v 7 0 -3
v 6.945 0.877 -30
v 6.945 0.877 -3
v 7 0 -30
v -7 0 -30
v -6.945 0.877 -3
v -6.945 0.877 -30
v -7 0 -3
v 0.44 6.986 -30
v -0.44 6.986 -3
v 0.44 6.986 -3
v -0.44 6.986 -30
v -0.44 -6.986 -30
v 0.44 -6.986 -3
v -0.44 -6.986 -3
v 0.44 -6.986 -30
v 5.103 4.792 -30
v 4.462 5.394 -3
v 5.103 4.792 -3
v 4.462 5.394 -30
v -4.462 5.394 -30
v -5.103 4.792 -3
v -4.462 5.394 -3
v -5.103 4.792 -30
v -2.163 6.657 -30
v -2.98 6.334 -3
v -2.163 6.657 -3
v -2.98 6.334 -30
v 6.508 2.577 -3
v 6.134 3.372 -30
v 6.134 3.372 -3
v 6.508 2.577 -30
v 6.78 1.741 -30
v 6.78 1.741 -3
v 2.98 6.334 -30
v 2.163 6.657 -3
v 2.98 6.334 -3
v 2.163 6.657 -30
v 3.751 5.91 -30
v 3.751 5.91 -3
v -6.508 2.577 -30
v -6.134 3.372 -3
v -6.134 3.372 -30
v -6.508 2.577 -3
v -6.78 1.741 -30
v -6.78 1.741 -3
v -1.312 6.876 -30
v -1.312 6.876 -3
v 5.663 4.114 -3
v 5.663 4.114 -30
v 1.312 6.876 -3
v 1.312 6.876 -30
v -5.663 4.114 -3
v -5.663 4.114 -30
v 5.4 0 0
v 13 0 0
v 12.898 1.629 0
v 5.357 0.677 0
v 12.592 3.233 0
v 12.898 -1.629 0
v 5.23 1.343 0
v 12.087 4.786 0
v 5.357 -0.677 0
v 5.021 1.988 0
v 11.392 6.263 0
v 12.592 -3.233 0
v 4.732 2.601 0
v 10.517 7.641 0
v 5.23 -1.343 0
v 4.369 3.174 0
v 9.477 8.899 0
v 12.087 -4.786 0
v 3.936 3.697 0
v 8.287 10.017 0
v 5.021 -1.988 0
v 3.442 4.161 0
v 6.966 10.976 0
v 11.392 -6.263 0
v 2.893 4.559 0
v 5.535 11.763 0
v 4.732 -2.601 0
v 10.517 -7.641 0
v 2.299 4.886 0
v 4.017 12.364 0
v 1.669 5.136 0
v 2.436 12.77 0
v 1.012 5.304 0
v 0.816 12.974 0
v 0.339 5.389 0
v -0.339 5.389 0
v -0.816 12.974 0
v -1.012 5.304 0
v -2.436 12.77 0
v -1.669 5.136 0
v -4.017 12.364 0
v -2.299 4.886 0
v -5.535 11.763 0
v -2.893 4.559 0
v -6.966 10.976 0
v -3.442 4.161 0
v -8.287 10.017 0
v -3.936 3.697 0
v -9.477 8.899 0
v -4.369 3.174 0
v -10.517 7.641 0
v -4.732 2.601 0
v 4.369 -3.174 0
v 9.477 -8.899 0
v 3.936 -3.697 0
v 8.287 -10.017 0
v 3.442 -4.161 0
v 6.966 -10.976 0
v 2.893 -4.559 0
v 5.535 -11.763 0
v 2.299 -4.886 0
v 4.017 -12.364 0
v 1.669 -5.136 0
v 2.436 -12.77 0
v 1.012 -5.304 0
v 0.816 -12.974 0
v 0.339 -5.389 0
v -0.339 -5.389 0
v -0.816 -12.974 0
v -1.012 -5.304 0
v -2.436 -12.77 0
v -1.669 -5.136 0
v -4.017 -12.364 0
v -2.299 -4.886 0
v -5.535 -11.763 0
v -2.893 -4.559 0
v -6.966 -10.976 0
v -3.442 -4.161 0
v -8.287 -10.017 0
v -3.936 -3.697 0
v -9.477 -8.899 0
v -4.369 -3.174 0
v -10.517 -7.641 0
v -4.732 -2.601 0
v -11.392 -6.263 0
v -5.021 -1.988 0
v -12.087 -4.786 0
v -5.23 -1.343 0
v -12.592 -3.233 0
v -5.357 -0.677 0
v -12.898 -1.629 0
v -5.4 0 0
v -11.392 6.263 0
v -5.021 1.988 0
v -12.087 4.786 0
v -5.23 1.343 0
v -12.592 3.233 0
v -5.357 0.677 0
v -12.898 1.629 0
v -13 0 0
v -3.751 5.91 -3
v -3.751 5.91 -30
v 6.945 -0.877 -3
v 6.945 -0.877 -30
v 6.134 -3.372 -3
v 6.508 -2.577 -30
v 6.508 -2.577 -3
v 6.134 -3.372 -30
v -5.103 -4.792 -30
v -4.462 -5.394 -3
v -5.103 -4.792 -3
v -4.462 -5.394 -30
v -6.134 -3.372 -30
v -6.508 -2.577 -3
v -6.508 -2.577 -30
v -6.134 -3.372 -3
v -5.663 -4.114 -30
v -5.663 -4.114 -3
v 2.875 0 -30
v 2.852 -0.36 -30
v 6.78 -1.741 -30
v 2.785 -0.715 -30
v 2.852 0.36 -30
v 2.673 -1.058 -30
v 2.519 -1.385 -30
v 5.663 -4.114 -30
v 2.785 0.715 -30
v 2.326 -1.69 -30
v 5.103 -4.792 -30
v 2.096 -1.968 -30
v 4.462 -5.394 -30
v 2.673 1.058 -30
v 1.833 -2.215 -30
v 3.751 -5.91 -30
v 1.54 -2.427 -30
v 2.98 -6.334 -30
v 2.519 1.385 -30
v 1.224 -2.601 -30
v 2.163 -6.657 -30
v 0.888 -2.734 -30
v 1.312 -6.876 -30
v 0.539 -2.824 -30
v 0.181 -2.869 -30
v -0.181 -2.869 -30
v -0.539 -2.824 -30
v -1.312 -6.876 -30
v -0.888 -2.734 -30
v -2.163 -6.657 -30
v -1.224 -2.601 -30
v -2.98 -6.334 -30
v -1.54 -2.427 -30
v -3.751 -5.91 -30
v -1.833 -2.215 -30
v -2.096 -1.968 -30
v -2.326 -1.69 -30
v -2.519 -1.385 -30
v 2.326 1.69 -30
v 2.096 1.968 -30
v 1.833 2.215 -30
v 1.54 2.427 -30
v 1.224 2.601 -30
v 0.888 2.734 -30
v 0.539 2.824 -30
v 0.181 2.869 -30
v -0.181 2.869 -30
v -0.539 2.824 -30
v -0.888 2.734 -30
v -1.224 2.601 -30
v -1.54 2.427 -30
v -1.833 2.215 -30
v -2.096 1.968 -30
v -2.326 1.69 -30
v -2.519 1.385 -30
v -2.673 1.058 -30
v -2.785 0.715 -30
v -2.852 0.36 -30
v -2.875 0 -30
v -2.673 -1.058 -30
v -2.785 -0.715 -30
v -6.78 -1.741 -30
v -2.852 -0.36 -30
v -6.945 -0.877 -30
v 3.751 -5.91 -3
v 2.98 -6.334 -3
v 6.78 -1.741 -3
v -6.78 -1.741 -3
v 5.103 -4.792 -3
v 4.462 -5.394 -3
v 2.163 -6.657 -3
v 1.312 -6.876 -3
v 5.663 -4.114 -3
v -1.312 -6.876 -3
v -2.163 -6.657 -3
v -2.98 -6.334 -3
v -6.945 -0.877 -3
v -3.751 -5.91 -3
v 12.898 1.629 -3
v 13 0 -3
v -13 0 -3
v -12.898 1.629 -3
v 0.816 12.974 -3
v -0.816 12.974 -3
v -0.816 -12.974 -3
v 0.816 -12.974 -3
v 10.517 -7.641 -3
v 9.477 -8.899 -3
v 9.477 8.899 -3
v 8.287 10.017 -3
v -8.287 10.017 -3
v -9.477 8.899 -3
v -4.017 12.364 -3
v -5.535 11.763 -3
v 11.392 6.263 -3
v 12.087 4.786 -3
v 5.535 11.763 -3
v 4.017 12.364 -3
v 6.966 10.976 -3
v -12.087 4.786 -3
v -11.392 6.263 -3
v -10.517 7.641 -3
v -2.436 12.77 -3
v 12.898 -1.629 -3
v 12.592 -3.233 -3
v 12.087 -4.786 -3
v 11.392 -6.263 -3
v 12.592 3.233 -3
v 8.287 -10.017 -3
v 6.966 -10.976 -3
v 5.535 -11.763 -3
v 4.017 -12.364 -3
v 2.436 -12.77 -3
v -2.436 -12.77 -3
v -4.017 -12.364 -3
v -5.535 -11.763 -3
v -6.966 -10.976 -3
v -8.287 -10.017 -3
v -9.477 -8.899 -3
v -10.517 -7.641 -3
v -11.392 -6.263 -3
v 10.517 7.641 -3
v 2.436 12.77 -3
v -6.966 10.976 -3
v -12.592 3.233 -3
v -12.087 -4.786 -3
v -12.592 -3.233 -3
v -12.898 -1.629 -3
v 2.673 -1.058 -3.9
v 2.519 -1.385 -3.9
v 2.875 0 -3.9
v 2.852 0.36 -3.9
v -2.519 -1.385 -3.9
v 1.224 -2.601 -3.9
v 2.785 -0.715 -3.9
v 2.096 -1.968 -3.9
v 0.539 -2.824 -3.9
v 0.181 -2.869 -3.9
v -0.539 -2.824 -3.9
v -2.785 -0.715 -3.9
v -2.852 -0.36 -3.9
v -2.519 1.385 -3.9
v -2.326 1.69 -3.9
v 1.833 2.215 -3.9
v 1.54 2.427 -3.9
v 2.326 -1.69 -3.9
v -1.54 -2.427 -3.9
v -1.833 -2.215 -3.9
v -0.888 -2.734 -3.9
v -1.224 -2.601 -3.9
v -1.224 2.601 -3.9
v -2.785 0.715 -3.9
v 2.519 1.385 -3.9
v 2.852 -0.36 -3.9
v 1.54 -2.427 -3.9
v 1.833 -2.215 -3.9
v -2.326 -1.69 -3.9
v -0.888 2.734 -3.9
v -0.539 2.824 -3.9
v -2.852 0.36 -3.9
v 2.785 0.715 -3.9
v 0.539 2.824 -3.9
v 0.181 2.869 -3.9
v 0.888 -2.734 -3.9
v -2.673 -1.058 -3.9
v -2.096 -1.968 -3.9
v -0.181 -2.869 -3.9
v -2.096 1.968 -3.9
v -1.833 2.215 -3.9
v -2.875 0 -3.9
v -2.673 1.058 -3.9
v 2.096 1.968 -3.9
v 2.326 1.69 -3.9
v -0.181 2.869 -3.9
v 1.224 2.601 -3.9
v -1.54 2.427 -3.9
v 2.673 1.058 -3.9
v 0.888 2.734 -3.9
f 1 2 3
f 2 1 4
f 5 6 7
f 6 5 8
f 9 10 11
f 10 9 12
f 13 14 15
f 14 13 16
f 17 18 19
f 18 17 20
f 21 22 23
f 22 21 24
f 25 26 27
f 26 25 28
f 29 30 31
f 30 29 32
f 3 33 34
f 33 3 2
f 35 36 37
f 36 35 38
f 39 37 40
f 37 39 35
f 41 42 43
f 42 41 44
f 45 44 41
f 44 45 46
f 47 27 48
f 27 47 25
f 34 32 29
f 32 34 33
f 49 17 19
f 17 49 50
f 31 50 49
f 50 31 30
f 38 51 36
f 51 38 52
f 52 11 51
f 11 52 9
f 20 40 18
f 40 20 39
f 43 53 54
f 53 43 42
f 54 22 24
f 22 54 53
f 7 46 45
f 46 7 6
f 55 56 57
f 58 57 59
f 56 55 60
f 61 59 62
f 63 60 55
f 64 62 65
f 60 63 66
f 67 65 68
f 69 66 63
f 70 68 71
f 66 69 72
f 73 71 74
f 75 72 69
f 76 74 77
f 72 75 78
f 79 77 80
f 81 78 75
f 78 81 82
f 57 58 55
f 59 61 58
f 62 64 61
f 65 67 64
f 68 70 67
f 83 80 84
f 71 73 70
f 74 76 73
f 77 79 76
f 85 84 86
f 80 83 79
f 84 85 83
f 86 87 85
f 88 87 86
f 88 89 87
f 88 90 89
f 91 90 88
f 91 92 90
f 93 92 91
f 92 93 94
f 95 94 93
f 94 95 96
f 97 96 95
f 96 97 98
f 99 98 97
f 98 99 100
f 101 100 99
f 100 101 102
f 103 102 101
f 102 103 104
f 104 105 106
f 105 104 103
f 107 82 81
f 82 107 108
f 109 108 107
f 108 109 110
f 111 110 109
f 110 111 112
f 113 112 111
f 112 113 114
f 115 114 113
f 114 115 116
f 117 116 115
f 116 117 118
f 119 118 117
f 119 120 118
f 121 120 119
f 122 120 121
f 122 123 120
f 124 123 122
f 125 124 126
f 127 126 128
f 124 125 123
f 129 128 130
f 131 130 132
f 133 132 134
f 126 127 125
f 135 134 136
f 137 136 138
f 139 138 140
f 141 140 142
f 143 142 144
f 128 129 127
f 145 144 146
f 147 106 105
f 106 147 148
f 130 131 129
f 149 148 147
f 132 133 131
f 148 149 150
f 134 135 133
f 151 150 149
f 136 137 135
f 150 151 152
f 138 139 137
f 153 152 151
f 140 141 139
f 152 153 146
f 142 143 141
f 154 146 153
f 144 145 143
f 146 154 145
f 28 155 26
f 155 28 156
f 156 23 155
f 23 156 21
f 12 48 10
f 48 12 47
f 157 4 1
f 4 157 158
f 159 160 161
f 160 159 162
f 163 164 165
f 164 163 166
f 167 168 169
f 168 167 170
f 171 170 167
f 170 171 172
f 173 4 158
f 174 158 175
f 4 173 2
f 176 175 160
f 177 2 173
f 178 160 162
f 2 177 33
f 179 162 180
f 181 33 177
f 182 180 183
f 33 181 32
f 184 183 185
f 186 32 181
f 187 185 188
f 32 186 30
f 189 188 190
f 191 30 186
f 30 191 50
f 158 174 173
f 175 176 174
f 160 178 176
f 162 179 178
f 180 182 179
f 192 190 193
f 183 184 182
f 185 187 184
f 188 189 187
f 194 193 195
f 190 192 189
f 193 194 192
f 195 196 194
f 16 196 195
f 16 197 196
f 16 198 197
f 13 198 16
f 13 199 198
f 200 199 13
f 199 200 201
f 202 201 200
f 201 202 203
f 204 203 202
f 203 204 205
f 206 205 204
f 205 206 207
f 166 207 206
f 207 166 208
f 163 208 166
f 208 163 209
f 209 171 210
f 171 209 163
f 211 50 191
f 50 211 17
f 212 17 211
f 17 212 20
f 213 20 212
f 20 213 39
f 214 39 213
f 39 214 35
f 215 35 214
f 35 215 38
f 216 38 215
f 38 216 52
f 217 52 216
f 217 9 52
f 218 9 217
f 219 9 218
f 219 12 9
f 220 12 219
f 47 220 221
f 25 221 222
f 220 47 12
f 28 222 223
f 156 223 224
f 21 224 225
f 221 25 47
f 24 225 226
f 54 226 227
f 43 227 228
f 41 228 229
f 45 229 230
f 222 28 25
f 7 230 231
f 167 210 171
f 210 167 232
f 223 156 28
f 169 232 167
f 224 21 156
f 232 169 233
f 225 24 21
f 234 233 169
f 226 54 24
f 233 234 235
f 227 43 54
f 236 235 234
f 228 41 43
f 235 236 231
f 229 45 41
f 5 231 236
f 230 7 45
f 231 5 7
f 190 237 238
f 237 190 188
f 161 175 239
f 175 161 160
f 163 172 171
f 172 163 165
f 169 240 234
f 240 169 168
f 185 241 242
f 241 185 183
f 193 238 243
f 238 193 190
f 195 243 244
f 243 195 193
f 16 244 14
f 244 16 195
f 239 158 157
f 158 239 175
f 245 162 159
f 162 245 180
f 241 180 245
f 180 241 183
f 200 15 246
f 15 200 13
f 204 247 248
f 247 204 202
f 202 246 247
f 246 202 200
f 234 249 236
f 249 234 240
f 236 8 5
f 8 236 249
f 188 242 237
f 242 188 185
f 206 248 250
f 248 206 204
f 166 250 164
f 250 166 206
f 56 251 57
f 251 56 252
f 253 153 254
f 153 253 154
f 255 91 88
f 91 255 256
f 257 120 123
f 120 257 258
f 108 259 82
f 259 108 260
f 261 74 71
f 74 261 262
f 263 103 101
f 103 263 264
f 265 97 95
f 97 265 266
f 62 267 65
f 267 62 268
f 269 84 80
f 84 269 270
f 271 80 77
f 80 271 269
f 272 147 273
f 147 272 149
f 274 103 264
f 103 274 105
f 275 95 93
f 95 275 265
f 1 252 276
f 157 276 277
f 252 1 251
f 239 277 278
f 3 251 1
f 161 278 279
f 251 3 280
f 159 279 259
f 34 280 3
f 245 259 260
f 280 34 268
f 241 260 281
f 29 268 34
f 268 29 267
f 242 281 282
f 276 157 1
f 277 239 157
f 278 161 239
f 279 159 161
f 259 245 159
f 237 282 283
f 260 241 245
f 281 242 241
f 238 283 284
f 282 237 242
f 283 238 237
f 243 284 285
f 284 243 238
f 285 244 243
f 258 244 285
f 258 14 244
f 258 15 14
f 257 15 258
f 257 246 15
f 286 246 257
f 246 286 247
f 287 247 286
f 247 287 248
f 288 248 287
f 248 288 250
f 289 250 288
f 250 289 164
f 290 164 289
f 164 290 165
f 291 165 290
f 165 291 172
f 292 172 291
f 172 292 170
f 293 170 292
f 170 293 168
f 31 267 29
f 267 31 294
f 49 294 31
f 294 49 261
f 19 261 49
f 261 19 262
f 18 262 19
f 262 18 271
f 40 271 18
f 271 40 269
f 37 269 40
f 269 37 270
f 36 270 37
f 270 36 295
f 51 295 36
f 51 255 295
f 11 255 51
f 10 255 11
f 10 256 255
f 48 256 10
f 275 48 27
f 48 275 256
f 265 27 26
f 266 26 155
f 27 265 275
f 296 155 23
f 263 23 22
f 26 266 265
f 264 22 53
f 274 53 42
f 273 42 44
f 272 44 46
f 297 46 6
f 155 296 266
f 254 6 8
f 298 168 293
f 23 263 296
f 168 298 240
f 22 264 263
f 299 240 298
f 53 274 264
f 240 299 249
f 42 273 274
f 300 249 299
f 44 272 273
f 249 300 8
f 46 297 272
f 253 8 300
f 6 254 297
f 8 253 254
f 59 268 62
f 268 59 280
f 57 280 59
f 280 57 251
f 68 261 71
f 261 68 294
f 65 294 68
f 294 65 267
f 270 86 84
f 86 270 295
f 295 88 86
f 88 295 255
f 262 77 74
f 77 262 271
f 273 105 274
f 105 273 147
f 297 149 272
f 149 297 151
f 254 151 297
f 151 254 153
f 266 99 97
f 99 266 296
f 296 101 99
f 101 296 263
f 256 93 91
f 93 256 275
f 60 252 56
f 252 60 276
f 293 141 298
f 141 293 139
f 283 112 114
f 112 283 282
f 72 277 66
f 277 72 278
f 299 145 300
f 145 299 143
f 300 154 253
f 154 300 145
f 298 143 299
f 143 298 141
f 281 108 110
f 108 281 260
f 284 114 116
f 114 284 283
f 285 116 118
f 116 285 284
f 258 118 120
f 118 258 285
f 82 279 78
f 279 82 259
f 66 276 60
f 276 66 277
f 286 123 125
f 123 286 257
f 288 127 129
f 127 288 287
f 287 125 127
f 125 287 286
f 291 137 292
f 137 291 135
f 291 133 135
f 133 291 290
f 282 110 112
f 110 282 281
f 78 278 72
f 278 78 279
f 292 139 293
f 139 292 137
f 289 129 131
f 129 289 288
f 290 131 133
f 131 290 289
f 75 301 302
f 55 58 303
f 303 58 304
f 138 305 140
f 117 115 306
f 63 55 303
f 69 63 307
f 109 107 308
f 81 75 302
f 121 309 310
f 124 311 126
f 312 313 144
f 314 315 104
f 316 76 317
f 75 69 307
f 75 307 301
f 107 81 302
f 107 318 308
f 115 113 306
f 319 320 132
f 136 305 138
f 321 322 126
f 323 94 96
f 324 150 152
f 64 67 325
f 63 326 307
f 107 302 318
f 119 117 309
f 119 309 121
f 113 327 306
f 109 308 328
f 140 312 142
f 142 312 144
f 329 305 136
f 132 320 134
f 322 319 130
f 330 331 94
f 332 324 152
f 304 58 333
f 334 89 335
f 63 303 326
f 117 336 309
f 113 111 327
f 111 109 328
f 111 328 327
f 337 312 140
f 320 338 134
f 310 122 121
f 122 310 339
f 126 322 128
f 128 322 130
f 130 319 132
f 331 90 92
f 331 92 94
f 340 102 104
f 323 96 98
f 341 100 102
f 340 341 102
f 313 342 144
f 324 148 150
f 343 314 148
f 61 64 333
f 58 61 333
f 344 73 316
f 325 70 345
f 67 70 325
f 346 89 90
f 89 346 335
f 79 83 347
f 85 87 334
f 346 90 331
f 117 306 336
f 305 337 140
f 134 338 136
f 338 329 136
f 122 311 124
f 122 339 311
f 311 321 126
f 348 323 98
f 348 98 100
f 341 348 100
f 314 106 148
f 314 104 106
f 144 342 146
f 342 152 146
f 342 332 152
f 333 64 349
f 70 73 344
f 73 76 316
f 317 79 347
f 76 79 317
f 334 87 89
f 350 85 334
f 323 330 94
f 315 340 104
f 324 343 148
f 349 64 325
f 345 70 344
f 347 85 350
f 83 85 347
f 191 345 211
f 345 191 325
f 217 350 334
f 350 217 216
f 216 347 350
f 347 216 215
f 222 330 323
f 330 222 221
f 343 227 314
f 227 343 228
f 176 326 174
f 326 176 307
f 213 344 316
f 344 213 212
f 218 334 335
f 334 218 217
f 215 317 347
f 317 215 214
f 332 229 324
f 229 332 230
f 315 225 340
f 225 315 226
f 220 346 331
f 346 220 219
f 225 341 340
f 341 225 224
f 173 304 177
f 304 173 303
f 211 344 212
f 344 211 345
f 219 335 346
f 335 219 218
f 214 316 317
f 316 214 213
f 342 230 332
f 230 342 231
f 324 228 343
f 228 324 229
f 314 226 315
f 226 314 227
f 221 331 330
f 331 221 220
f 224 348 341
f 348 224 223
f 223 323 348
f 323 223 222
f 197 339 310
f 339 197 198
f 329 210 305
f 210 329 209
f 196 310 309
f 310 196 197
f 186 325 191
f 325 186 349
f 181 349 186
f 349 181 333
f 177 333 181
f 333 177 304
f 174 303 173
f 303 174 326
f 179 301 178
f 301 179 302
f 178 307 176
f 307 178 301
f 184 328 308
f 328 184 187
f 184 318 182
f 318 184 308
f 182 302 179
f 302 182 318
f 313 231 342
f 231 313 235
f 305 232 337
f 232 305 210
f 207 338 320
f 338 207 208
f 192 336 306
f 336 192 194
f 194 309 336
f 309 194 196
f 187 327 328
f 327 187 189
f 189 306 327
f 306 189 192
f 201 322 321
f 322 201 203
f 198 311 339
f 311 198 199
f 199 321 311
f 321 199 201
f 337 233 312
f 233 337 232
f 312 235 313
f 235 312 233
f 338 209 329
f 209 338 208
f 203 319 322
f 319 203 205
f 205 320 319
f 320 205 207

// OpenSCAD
$fn = 50;


difference() {
	union() {
		translate(v = [0, 0, -30.0000000000]) {
			cylinder(h = 30, r = 7.0000000000);
		}
		translate(v = [0, 0, -3.0000000000]) {
			cylinder(h = 3, r = 13.0000000000);
		}
	}
	union() {
		translate(v = [0, 0, 0]) {
			rotate(a = [0, 0, 0]) {
				difference() {
					union() {
						#translate(v = [0, 0, -30.0000000000]) {
							cylinder(h = 30, r = 2.6000000000);
						}
						#translate(v = [0, 0, -3.9000000000]) {
							cylinder(h = 3.9000000000, r = 7.0000000000, r1 = 2.8750000000, r2 = 5.4000000000);
						}
						#translate(v = [0, 0, -30.0000000000]) {
							cylinder(h = 30, r = 2.8750000000);
						}
						#translate(v = [0, 0, -30.0000000000]) {
							cylinder(h = 30, r = 2.6000000000);
						}
					}
					union();
				}
			}
		}
	}
}
